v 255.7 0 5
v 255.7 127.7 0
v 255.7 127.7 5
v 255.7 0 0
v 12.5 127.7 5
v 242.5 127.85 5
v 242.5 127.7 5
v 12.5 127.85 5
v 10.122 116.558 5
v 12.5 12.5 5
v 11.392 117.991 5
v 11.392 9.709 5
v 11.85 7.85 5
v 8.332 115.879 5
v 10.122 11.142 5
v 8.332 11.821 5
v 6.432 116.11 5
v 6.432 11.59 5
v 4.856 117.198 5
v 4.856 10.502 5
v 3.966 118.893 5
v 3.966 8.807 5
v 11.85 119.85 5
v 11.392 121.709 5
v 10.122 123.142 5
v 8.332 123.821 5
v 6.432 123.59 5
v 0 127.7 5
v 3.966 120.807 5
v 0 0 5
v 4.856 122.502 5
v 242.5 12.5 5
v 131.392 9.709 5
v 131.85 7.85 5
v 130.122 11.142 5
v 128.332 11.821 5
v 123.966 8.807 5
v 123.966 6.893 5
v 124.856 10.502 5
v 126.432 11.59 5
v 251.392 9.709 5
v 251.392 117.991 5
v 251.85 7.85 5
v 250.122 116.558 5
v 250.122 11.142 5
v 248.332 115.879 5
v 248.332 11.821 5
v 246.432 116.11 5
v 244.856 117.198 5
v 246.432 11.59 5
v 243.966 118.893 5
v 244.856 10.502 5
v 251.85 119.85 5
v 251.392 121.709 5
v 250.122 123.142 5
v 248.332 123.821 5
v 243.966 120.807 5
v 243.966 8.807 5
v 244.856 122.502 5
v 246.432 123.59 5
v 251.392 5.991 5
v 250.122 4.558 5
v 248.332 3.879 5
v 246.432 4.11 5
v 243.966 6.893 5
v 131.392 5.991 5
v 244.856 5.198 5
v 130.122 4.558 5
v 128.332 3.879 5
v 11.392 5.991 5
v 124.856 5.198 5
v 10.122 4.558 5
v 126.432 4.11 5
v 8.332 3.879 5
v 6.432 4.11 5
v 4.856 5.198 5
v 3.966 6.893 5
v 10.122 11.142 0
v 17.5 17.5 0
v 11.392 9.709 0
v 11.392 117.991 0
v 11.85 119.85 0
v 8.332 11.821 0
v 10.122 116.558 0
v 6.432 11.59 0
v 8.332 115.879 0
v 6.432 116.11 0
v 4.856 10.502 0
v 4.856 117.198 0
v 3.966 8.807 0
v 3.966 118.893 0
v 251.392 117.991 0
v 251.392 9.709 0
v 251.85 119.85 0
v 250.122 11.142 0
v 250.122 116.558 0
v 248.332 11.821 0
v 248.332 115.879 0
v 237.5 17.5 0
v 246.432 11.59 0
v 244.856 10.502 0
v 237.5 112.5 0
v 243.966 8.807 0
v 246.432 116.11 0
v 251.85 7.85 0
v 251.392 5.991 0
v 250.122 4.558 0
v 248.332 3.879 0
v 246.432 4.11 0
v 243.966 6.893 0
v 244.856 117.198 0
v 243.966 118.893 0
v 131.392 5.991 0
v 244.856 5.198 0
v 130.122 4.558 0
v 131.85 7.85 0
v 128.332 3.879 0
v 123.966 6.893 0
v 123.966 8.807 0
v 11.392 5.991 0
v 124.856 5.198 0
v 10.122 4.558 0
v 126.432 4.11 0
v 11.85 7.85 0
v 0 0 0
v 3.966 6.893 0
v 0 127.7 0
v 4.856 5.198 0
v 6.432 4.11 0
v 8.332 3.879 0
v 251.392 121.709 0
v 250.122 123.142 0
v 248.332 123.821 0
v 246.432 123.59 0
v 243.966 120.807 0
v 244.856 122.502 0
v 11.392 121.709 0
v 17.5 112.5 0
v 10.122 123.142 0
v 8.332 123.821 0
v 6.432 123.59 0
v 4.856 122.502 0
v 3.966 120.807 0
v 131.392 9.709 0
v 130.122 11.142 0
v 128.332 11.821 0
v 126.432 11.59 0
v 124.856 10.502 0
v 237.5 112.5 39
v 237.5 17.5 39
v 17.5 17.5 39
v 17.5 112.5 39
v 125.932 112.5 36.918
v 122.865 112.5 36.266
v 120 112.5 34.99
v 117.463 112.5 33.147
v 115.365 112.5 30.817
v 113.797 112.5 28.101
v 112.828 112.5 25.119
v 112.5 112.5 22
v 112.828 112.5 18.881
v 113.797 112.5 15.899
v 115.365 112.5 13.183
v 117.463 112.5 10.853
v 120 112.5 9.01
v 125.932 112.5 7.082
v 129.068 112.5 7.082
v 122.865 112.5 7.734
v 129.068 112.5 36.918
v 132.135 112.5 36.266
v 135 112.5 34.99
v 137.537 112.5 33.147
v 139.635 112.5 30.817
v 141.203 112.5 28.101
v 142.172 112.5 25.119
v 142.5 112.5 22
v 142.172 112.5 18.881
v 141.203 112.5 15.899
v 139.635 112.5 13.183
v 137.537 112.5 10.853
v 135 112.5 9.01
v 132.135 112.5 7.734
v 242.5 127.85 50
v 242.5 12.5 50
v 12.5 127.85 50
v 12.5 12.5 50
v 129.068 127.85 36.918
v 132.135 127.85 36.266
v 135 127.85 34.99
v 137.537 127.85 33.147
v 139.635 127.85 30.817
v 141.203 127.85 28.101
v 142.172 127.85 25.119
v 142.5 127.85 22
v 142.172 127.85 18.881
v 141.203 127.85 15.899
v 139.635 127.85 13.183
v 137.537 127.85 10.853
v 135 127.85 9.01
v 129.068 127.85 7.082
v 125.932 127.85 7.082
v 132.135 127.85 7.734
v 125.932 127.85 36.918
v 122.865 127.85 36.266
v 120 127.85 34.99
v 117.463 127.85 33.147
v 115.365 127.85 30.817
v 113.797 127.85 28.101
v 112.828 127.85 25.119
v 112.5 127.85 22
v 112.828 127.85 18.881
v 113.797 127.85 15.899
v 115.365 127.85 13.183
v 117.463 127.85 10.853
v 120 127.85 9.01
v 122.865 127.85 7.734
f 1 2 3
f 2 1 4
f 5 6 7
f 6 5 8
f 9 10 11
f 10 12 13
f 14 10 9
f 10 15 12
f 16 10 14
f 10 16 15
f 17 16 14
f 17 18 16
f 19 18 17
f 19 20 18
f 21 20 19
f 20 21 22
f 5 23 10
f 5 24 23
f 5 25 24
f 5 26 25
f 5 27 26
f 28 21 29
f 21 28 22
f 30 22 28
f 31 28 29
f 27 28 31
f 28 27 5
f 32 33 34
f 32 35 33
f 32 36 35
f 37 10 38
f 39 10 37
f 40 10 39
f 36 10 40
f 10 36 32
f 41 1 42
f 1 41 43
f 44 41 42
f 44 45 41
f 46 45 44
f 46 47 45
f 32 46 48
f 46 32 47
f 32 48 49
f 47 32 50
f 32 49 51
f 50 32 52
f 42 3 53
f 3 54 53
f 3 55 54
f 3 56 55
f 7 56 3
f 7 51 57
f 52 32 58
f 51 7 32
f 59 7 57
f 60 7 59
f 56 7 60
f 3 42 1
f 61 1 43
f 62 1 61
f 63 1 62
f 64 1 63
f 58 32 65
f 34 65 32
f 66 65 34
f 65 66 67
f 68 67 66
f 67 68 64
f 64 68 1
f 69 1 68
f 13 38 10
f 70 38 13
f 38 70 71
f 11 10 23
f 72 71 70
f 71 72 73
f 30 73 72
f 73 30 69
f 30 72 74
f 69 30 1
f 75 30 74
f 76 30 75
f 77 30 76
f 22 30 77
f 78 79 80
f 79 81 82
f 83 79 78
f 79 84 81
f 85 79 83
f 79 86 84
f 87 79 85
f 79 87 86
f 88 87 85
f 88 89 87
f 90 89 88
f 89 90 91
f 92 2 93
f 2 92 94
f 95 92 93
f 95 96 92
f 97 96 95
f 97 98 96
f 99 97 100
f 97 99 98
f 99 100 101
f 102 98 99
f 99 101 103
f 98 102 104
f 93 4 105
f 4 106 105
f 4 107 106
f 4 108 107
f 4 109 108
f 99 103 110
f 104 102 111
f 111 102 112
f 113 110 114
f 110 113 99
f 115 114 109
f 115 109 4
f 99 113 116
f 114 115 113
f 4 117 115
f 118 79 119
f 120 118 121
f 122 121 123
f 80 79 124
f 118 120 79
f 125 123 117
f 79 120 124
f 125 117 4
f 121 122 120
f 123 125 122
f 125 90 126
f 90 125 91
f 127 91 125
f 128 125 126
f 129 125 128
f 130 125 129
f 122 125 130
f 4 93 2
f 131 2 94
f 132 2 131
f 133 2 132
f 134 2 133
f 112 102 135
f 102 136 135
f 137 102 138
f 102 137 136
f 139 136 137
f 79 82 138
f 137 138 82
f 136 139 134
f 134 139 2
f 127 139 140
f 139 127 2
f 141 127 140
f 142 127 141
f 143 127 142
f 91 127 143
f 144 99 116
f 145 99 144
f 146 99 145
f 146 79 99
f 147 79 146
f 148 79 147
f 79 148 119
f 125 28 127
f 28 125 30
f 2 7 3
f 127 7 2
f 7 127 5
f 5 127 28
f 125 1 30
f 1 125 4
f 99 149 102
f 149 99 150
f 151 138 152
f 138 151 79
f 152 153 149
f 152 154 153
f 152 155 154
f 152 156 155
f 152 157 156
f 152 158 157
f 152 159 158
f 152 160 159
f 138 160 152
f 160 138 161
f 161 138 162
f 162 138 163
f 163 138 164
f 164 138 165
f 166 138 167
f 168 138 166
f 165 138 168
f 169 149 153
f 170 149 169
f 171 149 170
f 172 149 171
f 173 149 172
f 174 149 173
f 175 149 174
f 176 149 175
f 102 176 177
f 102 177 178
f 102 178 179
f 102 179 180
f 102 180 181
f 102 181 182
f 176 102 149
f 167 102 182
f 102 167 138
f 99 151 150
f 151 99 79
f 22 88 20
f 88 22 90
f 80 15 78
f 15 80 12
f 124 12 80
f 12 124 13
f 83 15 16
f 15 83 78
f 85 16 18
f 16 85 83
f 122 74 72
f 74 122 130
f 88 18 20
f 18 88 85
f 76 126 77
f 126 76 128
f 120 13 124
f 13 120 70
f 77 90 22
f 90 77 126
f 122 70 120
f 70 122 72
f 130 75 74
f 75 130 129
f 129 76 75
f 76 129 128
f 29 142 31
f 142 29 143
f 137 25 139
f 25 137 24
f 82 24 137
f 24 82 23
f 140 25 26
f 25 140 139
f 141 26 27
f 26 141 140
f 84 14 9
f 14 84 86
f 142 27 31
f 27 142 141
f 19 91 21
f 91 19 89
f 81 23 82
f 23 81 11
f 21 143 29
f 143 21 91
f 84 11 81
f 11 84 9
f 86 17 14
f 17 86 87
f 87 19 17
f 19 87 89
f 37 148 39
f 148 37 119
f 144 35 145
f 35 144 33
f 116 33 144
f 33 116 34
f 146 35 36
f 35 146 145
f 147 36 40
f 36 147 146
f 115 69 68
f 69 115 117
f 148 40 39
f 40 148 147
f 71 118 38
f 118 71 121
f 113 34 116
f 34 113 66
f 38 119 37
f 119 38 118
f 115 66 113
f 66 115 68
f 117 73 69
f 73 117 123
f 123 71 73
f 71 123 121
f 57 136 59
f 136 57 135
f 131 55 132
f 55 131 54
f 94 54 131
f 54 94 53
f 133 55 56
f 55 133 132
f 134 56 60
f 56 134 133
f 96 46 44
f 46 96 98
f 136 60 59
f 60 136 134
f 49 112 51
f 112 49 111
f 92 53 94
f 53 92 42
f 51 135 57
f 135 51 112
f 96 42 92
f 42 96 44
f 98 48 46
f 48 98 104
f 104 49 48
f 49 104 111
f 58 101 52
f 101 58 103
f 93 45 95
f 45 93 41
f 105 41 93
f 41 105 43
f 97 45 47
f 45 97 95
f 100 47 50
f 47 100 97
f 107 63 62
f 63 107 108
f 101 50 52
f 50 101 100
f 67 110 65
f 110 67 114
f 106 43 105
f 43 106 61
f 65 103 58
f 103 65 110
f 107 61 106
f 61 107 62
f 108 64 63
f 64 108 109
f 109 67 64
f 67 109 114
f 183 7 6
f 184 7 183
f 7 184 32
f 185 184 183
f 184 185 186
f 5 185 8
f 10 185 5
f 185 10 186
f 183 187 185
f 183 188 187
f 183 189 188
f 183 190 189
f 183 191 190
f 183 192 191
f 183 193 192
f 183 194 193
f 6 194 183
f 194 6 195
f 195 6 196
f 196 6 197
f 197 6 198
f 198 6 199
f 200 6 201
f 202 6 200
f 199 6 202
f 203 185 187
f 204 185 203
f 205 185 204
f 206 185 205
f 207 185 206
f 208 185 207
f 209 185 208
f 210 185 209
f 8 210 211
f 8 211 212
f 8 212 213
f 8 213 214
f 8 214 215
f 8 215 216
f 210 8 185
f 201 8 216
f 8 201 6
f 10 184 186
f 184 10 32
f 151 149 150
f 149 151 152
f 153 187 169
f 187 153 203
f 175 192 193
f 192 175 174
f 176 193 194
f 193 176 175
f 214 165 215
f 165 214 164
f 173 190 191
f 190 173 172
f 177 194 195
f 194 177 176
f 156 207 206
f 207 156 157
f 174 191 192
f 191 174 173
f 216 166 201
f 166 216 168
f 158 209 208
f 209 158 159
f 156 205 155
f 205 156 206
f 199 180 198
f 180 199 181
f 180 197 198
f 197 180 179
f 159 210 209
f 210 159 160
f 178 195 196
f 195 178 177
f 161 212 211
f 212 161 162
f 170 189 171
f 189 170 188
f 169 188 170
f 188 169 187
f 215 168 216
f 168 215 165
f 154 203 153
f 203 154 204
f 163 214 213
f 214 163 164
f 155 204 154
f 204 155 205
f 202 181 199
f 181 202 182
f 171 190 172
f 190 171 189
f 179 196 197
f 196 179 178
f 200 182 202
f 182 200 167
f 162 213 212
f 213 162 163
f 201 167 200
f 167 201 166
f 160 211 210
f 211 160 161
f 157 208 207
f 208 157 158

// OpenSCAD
// Base plate
module case() {
    difference() {
        difference() {
            cube([255.70, 127.70, 5]);
            translate([17.5, 17.5, -1])
            cube([220, 95, 7]);
        }
        // Screw holes
        translate([7.85, 7.85, -1])
        cylinder(7, 4, 4);
        translate([7.85, 119.85, -1])
        cylinder(7, 4, 4);
        translate([127.85, 7.85, -1])
        cylinder(7, 4, 4);
        translate([247.85, 119.85, -1])
        cylinder(7, 4, 4);
        translate([247.85, 7.85, -1])
        cylinder(7, 4, 4);
    }

    // Box
    translate([12.5, 12.5, 5])
    difference() {
        difference() {
            cube([230, 115.35, 45]);
            translate([5, 5, -1])
            cube([220, 95, 35]);
        }

        // Mic stand screw hole
        translate([115, 116, 17])
        rotate([90, 0, 0])
        // Hole should be slightly too small, so thread can be melted in
        cylinder(16.1, 15, 15);
    }
}

case();
